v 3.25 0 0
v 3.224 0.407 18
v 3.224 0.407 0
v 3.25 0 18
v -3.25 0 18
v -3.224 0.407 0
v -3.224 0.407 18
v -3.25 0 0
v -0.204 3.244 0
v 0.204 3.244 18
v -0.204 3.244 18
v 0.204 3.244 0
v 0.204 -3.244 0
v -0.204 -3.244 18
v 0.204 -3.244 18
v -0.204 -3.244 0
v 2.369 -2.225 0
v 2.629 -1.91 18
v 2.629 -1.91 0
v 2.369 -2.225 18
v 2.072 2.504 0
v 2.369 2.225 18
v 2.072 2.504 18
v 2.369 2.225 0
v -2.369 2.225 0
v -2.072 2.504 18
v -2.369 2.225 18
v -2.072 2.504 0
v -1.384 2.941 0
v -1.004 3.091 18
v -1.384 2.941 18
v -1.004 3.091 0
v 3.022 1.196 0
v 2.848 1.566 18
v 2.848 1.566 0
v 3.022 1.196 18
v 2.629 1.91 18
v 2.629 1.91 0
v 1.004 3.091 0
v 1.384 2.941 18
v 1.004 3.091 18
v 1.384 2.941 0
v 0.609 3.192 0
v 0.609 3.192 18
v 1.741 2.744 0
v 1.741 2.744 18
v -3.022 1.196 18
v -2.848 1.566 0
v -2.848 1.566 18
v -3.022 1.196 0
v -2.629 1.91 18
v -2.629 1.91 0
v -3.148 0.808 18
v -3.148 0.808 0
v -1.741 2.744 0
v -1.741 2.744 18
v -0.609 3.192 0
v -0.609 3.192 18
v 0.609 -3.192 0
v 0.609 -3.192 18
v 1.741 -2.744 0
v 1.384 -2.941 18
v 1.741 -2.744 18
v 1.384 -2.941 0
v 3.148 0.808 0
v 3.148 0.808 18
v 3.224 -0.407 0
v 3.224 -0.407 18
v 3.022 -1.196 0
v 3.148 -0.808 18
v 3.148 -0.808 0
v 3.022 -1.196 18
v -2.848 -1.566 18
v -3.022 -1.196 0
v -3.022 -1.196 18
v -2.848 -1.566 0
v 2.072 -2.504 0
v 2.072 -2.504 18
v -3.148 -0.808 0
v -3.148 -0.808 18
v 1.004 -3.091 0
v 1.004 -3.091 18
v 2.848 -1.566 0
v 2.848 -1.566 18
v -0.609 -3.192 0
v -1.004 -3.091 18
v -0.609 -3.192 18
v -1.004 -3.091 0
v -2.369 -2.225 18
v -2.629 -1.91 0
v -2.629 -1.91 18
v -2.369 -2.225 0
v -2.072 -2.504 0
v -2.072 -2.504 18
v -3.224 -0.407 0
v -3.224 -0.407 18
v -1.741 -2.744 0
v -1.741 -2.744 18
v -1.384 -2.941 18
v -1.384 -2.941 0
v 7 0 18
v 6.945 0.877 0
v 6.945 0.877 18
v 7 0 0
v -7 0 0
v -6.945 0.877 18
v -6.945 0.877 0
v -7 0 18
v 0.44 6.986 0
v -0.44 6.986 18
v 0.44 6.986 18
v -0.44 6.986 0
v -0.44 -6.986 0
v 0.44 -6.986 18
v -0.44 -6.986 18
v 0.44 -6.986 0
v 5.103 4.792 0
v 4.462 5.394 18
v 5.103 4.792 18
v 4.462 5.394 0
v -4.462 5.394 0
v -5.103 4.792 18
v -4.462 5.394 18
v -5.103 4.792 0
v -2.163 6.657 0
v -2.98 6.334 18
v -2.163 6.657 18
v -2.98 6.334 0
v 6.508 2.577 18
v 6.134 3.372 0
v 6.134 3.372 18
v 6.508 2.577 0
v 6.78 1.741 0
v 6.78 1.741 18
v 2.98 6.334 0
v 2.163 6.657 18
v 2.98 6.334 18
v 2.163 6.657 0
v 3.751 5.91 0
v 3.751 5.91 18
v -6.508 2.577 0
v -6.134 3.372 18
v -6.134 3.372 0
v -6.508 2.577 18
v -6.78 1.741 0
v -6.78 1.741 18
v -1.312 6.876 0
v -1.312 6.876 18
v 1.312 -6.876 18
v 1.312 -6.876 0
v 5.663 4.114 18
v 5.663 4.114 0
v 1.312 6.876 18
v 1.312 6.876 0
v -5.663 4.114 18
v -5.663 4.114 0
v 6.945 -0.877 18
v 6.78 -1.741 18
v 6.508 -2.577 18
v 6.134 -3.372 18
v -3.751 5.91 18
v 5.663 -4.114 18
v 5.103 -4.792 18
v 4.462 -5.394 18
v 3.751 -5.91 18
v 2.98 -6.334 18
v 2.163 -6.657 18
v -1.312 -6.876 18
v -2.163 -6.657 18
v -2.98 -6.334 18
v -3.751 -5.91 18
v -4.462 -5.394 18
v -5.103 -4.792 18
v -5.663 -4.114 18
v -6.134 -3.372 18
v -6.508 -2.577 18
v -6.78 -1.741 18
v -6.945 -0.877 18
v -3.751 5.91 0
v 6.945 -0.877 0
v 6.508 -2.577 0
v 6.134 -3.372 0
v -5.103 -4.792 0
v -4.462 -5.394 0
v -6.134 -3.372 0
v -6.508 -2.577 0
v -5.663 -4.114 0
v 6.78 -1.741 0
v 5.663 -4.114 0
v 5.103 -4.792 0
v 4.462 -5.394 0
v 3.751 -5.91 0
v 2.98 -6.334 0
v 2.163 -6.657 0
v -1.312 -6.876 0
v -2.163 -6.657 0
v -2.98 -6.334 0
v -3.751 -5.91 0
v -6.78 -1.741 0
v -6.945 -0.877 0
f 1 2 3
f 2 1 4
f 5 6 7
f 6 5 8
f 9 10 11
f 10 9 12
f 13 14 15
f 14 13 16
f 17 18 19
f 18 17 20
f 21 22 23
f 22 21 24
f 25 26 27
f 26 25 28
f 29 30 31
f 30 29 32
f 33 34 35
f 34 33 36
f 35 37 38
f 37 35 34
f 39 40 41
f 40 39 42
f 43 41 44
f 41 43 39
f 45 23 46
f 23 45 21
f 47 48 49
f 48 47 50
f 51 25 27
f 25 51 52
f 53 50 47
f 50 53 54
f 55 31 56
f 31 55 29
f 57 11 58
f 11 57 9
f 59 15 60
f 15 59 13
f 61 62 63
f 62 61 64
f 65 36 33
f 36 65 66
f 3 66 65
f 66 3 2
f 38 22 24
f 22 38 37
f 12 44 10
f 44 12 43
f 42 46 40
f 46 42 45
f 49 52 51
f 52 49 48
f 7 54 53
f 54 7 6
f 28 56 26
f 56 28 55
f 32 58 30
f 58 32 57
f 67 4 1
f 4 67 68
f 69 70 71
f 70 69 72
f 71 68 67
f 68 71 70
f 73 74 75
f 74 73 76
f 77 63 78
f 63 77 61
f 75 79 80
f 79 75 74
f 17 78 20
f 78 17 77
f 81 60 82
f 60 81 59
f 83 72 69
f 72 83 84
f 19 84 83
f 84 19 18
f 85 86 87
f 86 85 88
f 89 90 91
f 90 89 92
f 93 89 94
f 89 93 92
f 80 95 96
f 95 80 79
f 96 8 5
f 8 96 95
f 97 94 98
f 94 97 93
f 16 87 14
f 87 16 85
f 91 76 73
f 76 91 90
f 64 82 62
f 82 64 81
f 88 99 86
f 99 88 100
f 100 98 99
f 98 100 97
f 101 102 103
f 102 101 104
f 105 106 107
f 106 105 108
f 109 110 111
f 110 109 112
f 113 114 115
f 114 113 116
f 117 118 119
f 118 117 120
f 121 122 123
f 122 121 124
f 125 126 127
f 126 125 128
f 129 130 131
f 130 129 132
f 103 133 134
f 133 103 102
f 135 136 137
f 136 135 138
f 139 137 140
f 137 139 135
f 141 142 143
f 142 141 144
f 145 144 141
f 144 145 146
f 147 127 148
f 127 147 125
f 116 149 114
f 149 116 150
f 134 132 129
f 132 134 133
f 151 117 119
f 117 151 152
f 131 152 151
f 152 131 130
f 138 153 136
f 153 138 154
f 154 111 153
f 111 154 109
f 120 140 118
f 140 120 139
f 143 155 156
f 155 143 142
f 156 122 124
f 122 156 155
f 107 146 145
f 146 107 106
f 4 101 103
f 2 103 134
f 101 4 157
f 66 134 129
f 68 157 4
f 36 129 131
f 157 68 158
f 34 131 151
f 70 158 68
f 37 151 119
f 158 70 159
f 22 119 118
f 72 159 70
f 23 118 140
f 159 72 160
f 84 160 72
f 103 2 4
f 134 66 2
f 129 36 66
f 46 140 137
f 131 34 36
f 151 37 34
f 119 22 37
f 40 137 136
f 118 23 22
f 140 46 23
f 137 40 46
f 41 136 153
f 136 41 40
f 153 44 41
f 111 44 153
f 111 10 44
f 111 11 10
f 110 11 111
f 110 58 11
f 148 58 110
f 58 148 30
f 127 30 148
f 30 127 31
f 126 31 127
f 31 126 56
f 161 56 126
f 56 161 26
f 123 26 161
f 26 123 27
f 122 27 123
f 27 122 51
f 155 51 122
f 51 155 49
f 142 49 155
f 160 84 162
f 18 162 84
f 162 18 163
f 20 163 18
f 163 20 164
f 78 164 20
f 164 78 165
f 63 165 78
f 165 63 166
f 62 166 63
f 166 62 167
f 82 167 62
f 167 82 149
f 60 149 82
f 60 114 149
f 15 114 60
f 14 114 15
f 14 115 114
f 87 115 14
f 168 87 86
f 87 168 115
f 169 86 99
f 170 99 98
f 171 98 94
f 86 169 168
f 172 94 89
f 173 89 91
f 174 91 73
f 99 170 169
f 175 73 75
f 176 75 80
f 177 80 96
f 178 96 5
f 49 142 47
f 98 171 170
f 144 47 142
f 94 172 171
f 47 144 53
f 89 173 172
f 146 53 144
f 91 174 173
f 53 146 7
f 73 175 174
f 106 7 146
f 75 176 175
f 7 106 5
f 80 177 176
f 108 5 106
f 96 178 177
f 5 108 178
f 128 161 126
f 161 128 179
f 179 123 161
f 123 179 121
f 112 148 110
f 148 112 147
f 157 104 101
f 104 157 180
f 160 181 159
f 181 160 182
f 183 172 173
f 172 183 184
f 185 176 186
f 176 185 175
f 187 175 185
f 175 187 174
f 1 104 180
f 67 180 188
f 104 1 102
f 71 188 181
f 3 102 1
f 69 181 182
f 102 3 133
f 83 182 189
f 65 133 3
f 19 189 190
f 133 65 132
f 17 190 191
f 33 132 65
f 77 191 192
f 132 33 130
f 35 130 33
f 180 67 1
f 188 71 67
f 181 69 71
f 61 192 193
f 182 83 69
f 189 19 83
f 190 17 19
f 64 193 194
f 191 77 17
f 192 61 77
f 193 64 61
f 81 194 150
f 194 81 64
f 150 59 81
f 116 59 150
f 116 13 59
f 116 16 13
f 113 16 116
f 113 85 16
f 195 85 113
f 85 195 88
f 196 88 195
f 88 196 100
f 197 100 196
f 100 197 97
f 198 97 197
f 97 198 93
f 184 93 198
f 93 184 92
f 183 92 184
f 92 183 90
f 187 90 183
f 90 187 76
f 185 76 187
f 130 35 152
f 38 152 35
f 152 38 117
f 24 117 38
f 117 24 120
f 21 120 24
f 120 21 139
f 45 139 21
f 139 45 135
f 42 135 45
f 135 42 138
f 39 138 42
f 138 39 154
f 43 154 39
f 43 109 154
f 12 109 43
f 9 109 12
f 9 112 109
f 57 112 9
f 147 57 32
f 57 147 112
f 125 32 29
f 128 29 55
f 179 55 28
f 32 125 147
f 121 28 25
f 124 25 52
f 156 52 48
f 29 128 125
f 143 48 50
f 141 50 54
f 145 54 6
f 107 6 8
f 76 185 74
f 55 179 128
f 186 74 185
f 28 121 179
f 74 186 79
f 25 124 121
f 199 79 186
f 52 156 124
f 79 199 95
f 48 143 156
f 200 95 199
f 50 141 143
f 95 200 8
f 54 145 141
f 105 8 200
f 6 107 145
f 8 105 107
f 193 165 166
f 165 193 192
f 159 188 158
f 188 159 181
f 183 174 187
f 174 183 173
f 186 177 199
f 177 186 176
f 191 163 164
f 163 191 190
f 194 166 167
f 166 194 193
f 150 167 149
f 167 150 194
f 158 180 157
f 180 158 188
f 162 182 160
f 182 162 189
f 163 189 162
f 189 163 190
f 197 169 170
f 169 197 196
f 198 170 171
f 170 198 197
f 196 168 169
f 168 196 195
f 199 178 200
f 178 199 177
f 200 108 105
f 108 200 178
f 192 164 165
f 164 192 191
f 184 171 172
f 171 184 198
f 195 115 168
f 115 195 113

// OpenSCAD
$fn = 50;


difference() {
	union() {
		translate(v = [0, 0, 0]) {
			rotate(a = [0, 0, 0]) {
				cylinder(h = 18, r = 7.0000000000);
			}
		}
	}
	union() {
		translate(v = [0.0000000000, 0.0000000000, 0]) {
			rotate(a = [0, 0, 0]) {
				translate(v = [0, 0, -50]) {
					rotate(a = [0, 0, 0]) {
						cylinder(h = 100, r = 3.2500000000);
					}
				}
			}
		}
		translate(v = [0.0000000000, 0.0000000000, 0]) {
			rotate(a = [0, 0, 0]) {
				translate(v = [0, 0, -50]) {
					rotate(a = [0, 0, 0]) {
						cylinder(h = 100, r = 1.8000000000);
					}
				}
			}
		}
	}
}
